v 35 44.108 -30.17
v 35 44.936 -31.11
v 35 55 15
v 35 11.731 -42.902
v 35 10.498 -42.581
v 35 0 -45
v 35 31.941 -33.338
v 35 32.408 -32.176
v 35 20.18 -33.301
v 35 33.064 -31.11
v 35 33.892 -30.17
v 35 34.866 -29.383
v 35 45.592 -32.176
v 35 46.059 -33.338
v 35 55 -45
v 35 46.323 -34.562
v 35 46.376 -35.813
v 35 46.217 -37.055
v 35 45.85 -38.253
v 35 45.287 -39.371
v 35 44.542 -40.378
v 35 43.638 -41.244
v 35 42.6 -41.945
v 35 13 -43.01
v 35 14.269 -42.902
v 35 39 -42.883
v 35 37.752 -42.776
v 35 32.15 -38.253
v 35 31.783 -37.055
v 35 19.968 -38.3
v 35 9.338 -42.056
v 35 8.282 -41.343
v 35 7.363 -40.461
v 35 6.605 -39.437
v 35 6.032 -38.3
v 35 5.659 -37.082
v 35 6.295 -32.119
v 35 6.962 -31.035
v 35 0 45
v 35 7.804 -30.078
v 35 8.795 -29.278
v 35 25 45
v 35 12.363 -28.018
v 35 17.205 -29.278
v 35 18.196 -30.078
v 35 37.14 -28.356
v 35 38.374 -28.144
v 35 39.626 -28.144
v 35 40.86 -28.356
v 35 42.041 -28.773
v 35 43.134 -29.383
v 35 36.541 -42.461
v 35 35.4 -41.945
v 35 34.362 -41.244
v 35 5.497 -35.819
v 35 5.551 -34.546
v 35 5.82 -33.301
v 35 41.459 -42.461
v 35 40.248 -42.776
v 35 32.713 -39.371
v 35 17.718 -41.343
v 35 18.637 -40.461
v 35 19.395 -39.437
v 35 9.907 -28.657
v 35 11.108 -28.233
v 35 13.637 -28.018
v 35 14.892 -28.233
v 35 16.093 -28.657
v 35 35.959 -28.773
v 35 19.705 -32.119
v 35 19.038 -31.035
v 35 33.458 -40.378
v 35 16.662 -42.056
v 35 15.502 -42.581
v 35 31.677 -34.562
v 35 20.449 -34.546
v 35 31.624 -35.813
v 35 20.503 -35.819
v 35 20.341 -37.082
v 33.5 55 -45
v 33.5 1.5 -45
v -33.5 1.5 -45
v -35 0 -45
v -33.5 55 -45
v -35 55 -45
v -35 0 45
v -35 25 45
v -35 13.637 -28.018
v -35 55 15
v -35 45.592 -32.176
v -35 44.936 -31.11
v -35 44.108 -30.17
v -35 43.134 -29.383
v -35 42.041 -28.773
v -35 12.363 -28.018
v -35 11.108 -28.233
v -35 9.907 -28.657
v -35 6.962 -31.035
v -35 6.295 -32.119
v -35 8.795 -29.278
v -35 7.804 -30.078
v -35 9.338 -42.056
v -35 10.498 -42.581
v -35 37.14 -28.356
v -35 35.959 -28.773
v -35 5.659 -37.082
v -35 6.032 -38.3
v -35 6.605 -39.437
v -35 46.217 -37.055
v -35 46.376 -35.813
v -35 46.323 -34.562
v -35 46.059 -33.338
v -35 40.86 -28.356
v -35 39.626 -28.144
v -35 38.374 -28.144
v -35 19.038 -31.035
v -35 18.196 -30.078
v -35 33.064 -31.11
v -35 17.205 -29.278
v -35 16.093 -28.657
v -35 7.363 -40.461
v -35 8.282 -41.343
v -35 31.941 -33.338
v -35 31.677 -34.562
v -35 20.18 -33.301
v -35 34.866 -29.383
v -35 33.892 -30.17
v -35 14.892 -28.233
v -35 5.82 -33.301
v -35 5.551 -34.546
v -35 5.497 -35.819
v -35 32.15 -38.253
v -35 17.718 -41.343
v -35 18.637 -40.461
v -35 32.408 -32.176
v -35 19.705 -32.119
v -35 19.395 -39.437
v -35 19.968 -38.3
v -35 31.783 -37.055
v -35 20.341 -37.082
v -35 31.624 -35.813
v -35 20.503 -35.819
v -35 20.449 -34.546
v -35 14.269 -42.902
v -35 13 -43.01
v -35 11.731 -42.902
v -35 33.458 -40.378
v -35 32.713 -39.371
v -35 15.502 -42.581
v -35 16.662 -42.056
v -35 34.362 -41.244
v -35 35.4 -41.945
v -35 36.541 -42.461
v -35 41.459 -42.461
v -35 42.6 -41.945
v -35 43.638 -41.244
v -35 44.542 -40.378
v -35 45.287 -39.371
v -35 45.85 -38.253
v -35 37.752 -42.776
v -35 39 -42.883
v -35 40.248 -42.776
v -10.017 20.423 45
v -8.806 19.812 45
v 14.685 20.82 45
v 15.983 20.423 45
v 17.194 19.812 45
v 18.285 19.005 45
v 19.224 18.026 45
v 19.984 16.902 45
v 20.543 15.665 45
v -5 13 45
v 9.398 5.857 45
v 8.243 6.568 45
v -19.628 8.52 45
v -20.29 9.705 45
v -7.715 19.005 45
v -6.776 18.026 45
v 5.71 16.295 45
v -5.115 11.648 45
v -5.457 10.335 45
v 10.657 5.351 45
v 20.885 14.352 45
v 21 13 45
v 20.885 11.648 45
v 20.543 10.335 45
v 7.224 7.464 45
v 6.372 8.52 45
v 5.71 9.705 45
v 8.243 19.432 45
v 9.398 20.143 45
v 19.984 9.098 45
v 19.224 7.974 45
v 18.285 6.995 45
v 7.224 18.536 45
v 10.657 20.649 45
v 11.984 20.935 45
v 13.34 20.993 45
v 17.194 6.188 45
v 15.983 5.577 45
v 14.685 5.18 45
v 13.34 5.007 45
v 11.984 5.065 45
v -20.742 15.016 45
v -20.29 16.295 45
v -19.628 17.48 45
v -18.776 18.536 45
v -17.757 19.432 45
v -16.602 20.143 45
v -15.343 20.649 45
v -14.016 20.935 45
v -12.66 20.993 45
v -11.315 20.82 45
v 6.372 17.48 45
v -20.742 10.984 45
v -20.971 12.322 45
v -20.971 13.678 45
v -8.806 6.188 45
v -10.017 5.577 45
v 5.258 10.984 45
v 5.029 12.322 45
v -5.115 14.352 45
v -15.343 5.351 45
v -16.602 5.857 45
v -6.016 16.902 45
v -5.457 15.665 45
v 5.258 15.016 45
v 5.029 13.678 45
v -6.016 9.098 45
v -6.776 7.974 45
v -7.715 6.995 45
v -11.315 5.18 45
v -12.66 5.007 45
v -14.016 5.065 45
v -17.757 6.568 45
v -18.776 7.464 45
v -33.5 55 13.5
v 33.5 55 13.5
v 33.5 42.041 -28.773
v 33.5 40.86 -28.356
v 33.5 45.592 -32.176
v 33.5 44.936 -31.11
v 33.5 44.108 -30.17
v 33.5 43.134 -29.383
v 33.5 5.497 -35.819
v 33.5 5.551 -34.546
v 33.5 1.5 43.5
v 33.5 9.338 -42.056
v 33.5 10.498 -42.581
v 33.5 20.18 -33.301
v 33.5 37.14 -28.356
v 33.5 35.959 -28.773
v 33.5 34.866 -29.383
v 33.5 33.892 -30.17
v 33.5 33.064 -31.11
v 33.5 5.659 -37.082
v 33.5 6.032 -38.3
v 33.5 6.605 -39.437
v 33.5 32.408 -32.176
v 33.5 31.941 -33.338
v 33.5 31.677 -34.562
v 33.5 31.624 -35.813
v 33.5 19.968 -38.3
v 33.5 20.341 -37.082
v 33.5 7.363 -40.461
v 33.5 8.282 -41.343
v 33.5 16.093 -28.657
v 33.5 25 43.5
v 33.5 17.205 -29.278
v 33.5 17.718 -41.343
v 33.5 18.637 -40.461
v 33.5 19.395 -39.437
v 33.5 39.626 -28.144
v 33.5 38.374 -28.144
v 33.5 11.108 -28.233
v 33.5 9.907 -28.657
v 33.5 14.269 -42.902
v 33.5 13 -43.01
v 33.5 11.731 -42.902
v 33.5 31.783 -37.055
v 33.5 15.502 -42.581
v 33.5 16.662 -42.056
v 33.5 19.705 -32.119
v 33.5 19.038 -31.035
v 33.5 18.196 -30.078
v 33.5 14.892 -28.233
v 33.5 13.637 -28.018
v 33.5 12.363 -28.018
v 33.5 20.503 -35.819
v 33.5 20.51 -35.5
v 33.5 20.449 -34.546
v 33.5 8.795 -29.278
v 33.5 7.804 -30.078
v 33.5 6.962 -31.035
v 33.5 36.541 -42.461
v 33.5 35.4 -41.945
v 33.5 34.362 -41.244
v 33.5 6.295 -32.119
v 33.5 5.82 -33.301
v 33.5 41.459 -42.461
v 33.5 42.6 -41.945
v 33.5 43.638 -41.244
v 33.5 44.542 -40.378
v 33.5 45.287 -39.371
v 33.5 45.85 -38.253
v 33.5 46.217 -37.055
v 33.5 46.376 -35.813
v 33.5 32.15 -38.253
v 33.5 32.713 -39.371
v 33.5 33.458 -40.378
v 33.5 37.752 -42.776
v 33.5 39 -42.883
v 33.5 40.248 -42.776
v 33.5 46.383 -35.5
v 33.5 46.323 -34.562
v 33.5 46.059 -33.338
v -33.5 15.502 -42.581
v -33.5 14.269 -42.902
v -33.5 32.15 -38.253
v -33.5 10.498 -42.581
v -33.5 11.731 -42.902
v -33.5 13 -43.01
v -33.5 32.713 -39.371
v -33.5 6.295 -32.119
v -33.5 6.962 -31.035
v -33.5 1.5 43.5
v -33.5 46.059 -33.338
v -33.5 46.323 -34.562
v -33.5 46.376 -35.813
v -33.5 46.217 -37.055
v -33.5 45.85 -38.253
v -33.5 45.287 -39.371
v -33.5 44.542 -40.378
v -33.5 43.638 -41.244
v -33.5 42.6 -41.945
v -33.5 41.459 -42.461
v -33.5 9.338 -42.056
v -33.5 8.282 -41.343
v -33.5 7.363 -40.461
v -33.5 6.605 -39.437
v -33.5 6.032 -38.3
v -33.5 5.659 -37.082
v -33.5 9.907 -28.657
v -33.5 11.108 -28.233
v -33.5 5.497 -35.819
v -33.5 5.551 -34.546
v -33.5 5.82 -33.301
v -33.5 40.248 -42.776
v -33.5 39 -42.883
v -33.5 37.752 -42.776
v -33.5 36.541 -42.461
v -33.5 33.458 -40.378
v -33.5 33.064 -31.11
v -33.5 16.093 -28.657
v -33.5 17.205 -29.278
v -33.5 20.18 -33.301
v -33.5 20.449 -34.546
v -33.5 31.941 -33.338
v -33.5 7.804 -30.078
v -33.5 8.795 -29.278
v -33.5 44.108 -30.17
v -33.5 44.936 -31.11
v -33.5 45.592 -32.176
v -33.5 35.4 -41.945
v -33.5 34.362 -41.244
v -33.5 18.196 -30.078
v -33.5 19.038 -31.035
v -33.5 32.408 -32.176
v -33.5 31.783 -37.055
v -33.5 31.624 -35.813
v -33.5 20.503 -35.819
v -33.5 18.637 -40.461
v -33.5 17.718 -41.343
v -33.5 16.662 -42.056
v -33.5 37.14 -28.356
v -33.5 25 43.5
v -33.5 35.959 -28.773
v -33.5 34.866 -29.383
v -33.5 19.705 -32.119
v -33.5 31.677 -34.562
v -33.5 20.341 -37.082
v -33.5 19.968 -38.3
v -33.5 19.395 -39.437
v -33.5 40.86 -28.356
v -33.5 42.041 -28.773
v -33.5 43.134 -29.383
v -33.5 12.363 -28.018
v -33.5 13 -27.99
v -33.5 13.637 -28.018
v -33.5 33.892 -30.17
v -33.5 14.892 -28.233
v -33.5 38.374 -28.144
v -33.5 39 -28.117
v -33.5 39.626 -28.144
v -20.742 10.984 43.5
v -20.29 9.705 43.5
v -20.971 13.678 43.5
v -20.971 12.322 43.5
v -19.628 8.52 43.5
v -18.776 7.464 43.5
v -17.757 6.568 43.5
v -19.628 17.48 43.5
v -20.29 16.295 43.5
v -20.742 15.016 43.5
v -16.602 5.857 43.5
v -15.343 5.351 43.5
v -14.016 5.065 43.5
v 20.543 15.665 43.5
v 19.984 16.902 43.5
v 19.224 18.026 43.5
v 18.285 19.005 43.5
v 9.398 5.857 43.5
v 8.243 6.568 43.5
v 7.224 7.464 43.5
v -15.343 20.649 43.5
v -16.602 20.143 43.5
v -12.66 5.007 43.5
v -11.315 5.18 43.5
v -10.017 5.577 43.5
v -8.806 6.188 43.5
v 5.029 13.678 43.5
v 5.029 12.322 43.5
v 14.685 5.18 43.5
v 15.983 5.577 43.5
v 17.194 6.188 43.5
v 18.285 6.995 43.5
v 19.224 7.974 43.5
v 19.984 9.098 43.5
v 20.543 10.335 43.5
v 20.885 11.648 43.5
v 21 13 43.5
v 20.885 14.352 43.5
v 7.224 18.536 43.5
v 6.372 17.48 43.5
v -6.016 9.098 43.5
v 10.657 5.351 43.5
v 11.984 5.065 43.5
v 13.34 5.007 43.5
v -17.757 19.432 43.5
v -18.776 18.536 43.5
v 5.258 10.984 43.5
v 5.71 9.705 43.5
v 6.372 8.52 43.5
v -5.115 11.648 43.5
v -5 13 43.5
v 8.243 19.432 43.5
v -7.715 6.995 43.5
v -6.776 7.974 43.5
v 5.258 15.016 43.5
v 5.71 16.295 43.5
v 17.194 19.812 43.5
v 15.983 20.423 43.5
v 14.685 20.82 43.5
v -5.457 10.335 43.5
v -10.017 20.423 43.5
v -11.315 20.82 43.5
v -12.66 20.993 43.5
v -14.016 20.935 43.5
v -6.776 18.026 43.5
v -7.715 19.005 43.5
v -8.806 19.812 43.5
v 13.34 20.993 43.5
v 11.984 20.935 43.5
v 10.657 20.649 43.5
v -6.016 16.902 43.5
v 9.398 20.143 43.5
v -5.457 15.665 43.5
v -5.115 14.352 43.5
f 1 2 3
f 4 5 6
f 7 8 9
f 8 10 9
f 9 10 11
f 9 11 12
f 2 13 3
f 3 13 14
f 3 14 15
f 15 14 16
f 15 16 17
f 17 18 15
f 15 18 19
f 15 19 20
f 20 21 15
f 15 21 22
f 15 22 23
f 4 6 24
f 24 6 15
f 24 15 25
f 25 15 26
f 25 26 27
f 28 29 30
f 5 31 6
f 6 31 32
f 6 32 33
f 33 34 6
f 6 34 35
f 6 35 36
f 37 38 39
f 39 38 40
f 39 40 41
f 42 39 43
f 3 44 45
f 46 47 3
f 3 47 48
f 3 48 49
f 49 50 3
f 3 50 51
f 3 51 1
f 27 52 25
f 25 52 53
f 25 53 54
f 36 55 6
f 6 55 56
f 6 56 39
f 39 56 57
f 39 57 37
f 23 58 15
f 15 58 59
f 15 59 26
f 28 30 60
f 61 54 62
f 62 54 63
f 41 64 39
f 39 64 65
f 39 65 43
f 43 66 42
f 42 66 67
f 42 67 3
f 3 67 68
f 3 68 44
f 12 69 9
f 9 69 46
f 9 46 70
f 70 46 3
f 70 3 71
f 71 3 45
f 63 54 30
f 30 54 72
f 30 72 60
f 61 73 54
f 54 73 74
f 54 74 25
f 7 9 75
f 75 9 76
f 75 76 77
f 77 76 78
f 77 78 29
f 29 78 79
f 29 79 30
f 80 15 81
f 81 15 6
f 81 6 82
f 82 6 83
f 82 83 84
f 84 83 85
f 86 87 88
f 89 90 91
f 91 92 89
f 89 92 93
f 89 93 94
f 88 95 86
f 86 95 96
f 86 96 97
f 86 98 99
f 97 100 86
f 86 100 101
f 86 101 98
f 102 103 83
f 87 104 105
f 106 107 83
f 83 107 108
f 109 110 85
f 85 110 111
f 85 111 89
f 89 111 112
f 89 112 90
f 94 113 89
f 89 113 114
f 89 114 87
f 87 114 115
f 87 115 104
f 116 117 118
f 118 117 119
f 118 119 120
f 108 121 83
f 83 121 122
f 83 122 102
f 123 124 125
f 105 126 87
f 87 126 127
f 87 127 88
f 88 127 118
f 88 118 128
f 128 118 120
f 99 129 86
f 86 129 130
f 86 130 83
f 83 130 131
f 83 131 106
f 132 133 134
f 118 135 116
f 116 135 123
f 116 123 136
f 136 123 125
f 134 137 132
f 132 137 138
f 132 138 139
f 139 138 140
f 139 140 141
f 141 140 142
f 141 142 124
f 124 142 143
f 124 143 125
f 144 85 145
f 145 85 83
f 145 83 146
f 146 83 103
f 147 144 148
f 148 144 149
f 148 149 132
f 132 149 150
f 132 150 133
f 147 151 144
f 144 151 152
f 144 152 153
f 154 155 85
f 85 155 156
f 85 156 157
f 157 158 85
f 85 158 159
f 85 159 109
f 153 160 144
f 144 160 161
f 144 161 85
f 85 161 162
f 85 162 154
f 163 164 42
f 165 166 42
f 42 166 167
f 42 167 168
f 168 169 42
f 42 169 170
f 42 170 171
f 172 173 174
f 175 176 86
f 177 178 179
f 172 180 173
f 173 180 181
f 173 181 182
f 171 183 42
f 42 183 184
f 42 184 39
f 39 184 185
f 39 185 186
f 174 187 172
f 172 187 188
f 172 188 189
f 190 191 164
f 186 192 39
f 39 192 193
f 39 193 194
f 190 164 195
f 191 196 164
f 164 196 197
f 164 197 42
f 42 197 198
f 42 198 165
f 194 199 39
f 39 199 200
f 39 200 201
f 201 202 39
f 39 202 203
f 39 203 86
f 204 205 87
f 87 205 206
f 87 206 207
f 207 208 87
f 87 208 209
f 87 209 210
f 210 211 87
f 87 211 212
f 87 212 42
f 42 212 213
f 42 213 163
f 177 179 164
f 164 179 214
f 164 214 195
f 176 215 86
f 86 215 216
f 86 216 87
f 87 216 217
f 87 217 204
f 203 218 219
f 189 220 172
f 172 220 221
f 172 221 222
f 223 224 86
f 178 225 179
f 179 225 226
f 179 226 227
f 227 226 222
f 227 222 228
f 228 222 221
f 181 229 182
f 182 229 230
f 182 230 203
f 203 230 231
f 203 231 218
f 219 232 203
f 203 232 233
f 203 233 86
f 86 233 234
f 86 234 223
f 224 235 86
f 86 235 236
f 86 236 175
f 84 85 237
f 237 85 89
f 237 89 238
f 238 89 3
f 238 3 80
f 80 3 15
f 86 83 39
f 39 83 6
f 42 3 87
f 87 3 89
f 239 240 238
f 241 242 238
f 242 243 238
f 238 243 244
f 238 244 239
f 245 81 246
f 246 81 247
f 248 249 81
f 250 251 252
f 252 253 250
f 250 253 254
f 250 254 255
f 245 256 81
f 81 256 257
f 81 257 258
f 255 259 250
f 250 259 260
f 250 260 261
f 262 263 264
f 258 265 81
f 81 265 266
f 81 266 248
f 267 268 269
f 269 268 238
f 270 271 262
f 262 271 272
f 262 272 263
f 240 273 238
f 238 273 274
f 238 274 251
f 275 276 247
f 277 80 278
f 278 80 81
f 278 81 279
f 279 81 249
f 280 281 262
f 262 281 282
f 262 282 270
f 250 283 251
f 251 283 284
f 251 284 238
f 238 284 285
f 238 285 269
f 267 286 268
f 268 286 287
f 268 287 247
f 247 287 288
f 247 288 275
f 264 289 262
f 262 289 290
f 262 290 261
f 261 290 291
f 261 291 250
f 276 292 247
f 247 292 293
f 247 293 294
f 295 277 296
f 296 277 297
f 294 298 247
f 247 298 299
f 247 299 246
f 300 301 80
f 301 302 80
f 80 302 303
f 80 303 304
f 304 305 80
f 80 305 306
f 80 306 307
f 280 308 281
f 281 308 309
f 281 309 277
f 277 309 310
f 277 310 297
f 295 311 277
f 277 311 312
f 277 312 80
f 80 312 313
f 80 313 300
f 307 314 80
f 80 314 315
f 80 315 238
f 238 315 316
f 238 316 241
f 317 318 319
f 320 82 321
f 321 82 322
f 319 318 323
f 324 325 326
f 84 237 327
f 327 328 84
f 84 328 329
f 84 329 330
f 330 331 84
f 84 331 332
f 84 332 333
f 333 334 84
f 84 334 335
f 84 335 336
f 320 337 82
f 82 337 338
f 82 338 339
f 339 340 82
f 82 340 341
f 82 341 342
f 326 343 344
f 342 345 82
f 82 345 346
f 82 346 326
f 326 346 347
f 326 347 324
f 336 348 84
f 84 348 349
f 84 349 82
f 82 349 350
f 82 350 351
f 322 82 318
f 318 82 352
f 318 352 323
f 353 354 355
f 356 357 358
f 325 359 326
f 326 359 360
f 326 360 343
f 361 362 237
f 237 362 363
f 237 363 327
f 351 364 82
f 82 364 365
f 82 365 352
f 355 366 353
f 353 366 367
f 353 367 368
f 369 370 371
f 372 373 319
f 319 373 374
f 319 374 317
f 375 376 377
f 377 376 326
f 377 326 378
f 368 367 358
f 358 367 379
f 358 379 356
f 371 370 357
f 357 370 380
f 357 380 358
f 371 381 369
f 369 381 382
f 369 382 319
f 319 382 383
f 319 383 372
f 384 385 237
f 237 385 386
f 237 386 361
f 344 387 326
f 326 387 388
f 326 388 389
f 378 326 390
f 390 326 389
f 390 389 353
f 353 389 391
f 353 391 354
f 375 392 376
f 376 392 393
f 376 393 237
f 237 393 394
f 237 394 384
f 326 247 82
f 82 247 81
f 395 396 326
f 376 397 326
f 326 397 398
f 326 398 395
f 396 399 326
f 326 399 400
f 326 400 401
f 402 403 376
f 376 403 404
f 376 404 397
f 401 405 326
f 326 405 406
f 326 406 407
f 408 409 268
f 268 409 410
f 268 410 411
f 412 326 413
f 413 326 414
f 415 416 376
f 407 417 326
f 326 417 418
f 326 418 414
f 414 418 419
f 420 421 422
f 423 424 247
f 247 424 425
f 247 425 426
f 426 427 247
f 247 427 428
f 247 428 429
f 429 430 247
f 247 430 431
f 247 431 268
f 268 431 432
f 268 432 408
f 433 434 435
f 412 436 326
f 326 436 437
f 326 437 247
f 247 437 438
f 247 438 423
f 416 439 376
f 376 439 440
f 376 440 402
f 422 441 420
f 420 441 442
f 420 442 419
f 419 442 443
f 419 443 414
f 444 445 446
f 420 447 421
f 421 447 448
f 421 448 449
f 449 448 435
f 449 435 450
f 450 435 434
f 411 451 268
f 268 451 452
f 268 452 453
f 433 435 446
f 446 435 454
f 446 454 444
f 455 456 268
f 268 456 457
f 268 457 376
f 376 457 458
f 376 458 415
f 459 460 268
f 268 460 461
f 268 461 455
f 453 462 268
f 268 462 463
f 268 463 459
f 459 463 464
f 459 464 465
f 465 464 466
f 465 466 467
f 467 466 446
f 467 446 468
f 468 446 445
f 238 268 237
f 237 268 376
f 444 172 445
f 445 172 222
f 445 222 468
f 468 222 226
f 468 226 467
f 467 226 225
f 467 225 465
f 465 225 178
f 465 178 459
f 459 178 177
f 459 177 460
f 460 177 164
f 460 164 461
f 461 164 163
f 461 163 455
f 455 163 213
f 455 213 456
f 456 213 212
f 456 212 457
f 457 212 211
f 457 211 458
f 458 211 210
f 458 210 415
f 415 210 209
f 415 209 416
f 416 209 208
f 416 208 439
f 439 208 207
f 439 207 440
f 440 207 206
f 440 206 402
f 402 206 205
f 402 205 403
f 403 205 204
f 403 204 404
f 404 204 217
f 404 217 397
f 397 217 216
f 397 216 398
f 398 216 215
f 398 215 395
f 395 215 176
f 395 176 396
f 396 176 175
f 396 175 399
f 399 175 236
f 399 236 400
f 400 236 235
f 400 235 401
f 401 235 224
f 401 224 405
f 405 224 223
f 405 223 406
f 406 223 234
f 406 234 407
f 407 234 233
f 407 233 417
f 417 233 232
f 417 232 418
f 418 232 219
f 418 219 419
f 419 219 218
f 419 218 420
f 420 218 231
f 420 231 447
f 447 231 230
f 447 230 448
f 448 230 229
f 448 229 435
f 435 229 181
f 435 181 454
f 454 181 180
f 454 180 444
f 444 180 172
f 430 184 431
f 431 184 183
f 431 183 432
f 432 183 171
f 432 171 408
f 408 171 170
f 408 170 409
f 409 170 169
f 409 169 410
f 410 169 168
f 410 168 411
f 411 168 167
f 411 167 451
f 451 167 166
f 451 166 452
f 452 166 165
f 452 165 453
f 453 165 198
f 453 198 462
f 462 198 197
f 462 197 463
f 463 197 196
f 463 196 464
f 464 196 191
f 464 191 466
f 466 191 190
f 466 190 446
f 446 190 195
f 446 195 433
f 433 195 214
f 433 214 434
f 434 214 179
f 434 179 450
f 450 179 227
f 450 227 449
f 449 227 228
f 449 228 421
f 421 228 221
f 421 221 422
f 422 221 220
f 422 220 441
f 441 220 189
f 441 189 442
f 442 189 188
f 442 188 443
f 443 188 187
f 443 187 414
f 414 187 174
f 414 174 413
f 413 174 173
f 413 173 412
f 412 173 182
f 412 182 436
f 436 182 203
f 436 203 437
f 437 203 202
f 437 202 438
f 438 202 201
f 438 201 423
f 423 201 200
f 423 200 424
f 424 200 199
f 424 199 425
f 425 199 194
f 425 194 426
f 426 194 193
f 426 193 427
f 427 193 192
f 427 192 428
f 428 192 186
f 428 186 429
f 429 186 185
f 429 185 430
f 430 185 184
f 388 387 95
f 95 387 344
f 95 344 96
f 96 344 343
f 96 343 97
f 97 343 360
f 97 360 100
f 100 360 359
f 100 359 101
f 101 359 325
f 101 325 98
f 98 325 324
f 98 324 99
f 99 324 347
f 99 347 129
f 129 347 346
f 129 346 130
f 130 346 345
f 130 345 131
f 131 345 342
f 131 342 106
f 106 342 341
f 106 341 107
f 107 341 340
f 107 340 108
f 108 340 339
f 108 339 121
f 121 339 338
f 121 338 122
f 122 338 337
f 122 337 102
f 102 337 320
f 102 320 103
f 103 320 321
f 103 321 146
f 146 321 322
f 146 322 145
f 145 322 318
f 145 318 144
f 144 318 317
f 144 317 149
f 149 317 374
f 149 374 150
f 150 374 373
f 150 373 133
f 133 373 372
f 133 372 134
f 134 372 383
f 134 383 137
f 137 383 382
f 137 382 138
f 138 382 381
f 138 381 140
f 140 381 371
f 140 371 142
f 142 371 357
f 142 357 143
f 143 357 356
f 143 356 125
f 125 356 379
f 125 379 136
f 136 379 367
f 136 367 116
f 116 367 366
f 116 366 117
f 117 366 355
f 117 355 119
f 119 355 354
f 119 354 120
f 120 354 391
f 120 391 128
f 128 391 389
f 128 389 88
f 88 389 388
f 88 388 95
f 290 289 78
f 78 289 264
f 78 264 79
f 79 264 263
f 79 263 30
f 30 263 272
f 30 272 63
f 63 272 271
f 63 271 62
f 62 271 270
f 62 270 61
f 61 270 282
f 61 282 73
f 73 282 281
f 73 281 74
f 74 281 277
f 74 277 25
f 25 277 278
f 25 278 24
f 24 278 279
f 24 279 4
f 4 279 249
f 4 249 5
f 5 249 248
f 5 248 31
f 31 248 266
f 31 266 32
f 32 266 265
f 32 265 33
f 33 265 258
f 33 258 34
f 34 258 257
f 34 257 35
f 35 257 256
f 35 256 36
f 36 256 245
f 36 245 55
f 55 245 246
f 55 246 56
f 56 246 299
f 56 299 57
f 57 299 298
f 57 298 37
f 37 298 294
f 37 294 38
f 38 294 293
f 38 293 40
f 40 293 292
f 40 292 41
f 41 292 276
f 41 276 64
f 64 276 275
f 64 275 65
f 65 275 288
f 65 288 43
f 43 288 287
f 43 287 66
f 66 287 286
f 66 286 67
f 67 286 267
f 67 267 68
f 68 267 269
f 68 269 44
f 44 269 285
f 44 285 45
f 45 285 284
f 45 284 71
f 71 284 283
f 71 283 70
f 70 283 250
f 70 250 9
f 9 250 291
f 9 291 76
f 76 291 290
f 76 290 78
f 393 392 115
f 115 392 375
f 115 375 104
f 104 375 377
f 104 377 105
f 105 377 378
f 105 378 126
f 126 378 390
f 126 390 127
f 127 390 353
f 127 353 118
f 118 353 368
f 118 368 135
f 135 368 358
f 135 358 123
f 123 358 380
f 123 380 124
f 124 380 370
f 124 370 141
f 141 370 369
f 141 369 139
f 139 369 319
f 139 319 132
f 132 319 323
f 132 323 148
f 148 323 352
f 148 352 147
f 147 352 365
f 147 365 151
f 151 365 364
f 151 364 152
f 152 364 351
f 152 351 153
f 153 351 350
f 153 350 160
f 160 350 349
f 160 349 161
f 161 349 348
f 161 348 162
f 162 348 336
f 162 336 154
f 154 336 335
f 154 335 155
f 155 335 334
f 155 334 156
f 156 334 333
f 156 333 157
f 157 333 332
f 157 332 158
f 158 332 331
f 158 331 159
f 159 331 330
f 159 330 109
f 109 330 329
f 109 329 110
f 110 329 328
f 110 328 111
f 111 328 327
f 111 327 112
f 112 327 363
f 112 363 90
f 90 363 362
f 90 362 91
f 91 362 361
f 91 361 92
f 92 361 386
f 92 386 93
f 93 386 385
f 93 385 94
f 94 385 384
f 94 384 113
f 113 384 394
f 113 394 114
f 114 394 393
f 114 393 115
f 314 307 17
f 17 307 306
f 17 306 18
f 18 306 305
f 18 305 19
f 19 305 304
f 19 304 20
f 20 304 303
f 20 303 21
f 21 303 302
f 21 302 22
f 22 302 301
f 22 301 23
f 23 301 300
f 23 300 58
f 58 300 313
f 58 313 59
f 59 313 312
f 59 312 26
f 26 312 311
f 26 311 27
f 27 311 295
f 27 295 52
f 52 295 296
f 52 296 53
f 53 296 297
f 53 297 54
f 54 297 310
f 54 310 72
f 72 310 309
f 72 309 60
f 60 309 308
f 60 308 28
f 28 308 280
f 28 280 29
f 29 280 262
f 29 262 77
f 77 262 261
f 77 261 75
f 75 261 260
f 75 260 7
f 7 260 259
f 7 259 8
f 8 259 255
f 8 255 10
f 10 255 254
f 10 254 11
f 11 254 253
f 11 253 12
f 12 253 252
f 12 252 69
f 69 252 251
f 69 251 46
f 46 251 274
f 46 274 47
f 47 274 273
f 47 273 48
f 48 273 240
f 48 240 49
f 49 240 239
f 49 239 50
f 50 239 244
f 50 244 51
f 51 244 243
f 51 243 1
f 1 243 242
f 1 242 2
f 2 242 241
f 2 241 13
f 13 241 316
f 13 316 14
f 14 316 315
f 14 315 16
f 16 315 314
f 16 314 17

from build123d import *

# Parameters (mm, degrees)
ESBO_O1_W                = 70
ESBO_O1_H                = 90
RESSALTO_EXTRUS_O1_DEPTH = 55
CHANFRO1_SIZE            = 30
ESBO_O3_W                = 67
ESBO_O3_H                = 53.5
CORTE_EXTRUS_O1_DEPTH    = 58.5
ESBO_O5_W                = 67
ESBO_O5_H                = 22.5
CORTE_EXTRUS_O3_DEPTH    = 30
CHANFRO2_SIZE            = 31
ESBO_O4_R                = 8
CORTE_EXTRUS_O4_DEPTH    = 112.130553854
ESBO_O6_R                = 7.509542532
ESBO_O6_R_2              = 7.382654188
CORTE_EXTRUS_O5_DEPTH    = 100.749686716


with BuildPart() as part:
    # Esboço1 → Ressalto-extrusão1 (new body)
    with BuildSketch(Plane(origin=(0, 0, 0), x_dir=(1, 0, 0), z_dir=(0, 1, 0))):
        Rectangle(ESBO_O1_W, ESBO_O1_H)
    extrude(amount=RESSALTO_EXTRUS_O1_DEPTH)

    # Chanfro1
    chanfro1_edges = [part.edges().sort_by_distance(p)[0] for p in [
        (0, 55, 45),
    ]]
    chamfer(chanfro1_edges, length=CHANFRO1_SIZE)

    # Esboço3 → Corte-extrusão1 (cut)
    with BuildSketch(Plane(origin=(0, 0, -45), x_dir=(-1, 0, 0), z_dir=(0, 0, -1))):
        with Locations((0, 28.25)):
            Rectangle(ESBO_O3_W, ESBO_O3_H)
    extrude(amount=-CORTE_EXTRUS_O1_DEPTH, mode=Mode.SUBTRACT)

    # Esboço5 → Corte-extrusão3 (cut)
    with BuildSketch(Plane(origin=(0, 0, 13.5), x_dir=(-1, 0, 0), z_dir=(0, 0, -1))):
        with Locations((0, 12.75)):
            Rectangle(ESBO_O5_W, ESBO_O5_H)
    extrude(amount=-CORTE_EXTRUS_O3_DEPTH, mode=Mode.SUBTRACT)

    # Chanfro2
    # the kernel refuses this chamfer: 31 mm, written as the material it takes off along each edge
    with BuildSketch(Plane(origin=(-33.5, 24, 13.5), x_dir=(0, -0.027495876610586407, 0.9996219169112968), z_dir=(1, 0, 0))) as chanfro2_piece_1_section:
        Polygon((CHANFRO2_SIZE * 0.999621916911, -CHANFRO2_SIZE * 0.0274958766106), (-CHANFRO2_SIZE * 0.0274958766106, -CHANFRO2_SIZE * 0.999621916911), (0, 0), align=None)
    chanfro2_piece_1 = extrude(amount=67, mode=Mode.PRIVATE)
    chanfro2_piece_1 = split(chanfro2_piece_1, bisect_by=Plane(origin=(0, 34.34375, 43.5), z_dir=(0, 0, -1)), keep=Keep.TOP, mode=Mode.PRIVATE)
    add(chanfro2_piece_1, mode=Mode.SUBTRACT)

    # Esboço4 → Corte-extrusão4 (cut, through all)
    with BuildSketch(Plane.XY.offset(45)):
        with Locations((13, 13)):
            Circle(ESBO_O4_R)
        with Locations((-13, 13)):
            Circle(ESBO_O4_R)
    extrude(amount=-CORTE_EXTRUS_O4_DEPTH, mode=Mode.SUBTRACT)

    # Esboço6 → Corte-extrusão5 (cut, through all)
    with BuildSketch(Plane(origin=(35, 0, 0), x_dir=(0, 0, -1), z_dir=(1, 0, 0))):
        with Locations((35.5, 13)):
            Circle(ESBO_O6_R)
        with Locations((35.5, 39)):
            Circle(ESBO_O6_R_2)
    extrude(amount=-CORTE_EXTRUS_O5_DEPTH, mode=Mode.SUBTRACT)


solid = part.part
